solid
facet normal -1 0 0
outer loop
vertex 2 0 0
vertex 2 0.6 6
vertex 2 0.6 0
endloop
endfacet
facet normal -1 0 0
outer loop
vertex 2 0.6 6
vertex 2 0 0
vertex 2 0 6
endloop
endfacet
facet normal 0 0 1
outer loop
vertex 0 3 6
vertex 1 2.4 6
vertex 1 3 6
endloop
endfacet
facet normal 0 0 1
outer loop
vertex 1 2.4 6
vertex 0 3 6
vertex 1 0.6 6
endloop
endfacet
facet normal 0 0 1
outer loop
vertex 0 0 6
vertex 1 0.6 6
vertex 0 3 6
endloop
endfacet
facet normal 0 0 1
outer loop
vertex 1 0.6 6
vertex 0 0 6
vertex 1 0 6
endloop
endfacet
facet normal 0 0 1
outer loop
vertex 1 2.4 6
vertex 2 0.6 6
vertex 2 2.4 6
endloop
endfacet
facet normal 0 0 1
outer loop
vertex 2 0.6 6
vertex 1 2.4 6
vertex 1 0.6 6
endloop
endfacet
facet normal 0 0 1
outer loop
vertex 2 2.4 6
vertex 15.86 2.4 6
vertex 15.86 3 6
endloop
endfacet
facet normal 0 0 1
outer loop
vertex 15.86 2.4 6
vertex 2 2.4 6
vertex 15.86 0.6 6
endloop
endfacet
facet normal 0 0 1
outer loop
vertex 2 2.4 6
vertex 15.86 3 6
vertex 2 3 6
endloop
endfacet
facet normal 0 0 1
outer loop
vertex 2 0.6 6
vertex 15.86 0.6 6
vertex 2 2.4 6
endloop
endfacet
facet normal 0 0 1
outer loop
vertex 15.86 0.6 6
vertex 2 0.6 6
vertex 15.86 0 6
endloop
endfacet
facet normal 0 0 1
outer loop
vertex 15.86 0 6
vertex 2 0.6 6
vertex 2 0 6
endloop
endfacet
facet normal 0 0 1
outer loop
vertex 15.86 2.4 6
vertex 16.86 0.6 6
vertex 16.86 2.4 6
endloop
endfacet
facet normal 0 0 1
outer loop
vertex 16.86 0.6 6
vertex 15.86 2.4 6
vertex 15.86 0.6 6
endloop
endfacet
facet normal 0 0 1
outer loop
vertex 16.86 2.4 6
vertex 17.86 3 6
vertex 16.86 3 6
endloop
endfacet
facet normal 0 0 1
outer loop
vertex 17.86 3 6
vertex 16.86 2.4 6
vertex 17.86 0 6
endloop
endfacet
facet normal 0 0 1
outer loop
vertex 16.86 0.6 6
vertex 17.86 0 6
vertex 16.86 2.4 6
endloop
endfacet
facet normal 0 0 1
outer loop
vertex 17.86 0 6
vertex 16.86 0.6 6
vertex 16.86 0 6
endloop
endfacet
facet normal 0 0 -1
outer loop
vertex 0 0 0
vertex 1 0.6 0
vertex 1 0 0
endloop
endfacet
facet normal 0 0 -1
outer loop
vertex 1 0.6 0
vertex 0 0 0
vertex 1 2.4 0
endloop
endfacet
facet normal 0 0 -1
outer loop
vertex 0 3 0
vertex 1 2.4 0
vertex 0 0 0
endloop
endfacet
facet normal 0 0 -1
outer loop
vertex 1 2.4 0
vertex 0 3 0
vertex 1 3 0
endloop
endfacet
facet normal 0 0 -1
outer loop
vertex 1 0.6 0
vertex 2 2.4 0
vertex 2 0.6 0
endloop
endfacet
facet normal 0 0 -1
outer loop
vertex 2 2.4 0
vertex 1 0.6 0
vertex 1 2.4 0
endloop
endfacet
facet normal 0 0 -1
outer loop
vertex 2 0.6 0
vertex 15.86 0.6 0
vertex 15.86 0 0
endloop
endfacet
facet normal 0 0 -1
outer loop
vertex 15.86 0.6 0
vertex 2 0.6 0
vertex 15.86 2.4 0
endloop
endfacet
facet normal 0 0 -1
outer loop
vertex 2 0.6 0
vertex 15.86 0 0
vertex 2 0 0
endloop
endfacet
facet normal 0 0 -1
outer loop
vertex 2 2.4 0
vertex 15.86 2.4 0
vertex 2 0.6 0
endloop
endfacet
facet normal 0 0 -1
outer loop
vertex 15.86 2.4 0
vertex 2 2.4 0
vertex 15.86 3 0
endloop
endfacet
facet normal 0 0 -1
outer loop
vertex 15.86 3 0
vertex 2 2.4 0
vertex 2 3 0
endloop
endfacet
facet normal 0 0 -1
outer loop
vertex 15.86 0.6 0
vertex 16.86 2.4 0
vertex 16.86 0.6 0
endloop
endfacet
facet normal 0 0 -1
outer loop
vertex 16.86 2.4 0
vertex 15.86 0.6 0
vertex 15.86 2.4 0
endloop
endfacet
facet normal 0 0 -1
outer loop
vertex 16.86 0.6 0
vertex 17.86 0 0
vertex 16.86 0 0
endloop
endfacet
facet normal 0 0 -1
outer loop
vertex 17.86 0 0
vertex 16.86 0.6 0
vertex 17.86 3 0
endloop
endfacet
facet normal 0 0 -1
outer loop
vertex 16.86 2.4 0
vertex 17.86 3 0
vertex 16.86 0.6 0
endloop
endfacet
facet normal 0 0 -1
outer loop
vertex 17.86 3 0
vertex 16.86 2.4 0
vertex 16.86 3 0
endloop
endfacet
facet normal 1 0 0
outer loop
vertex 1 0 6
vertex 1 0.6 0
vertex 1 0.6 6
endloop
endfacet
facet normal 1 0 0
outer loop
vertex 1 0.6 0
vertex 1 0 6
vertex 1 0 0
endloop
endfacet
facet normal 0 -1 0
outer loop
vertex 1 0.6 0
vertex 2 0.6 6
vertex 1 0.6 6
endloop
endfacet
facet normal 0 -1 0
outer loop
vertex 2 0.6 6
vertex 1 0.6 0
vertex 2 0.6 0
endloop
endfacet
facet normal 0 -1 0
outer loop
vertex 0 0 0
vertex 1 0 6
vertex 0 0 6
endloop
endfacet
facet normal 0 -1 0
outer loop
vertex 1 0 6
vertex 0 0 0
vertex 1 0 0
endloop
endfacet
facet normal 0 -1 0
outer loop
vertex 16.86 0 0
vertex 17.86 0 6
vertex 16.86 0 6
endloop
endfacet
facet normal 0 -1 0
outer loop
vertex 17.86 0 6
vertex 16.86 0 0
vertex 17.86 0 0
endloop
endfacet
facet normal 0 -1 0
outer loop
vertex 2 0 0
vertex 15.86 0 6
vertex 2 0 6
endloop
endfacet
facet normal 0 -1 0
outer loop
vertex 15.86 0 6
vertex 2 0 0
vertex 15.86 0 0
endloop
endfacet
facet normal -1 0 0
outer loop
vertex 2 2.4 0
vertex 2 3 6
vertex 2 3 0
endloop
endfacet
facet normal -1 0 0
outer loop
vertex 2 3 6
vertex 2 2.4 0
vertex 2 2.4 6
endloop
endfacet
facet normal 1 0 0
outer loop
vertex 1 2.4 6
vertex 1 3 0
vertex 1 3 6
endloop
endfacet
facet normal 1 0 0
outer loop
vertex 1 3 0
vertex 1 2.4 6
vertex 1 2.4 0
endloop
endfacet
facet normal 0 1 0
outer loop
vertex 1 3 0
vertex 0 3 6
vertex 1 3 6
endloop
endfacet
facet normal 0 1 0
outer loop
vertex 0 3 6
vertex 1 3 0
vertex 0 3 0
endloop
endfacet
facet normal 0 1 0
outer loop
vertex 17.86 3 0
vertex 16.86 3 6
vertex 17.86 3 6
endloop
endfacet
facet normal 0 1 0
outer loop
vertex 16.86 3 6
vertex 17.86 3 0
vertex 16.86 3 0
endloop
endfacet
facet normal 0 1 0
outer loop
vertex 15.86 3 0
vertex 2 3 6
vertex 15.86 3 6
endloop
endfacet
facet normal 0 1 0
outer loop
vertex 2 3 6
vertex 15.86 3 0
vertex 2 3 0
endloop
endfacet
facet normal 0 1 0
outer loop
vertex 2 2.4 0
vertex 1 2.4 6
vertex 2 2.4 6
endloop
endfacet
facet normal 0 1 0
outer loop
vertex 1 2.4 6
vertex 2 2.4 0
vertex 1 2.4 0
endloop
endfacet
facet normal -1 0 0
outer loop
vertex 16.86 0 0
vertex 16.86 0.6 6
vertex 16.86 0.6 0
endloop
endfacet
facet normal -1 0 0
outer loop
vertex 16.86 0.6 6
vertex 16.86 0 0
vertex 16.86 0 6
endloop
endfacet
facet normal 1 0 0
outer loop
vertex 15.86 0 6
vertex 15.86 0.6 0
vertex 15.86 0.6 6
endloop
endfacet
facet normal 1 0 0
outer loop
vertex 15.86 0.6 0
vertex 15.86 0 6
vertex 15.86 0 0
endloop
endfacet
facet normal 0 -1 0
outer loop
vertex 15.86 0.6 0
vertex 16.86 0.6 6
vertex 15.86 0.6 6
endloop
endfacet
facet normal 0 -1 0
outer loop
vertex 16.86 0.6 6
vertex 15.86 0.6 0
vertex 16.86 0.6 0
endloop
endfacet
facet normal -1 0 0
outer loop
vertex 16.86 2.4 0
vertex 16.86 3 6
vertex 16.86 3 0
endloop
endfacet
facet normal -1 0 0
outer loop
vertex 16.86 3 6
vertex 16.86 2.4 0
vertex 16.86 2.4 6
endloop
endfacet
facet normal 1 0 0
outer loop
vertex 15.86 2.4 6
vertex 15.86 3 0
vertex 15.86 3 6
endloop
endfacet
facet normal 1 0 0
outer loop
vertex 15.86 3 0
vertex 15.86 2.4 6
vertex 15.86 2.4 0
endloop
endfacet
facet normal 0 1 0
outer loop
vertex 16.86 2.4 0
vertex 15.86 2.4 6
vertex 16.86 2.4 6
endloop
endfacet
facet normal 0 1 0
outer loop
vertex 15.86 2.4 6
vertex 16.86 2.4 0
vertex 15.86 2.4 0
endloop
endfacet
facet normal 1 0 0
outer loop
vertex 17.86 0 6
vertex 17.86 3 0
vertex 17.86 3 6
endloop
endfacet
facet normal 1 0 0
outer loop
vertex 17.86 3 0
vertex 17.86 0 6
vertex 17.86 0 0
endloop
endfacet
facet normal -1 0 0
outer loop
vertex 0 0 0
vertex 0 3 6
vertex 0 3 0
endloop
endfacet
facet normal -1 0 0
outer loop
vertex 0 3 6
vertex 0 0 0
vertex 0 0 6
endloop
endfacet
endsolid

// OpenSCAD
// file: ../../../share/openscad/eurorack-led-holder.scad
/*
 * SPDX-FileCopyrightText: 2021-2022 Rafael G. Martins <rafael@rafaelmartins.eng.br>
 * SPDX-License-Identifier: CERN-OHL-S-2.0
 */

module eurorack_led_holder(num_leds, leds_spacing=0) {
    margin = 1;
    width = 3;
    height = 6;
    led_width = 1.8;
    led_length = 1;
    length = (num_leds - 1) * leds_spacing + 2 * margin + led_length;

    difference() {
        cube([length, width, height]);
        for (i = [0 : num_leds - 1]) {
            translate([margin + i * leds_spacing, 0, 0]) {
                cube([led_length, (width - led_width) / 2, height]);
                translate([0, width - ((width - led_width) / 2), 0])
                    cube([led_length, (width - led_width) / 2, height]);
            }
        }
    }
}
// main file
/*
 * SPDX-FileCopyrightText: 2021-2022 Rafael G. Martins <rafael@rafaelmartins.eng.br>
 * SPDX-License-Identifier: CERN-OHL-S-2.0
 */

include <../../../share/openscad/eurorack-led-holder.scad>

num_leds = 2;
leds_spacing = 14.86;

eurorack_led_holder(num_leds, leds_spacing);
